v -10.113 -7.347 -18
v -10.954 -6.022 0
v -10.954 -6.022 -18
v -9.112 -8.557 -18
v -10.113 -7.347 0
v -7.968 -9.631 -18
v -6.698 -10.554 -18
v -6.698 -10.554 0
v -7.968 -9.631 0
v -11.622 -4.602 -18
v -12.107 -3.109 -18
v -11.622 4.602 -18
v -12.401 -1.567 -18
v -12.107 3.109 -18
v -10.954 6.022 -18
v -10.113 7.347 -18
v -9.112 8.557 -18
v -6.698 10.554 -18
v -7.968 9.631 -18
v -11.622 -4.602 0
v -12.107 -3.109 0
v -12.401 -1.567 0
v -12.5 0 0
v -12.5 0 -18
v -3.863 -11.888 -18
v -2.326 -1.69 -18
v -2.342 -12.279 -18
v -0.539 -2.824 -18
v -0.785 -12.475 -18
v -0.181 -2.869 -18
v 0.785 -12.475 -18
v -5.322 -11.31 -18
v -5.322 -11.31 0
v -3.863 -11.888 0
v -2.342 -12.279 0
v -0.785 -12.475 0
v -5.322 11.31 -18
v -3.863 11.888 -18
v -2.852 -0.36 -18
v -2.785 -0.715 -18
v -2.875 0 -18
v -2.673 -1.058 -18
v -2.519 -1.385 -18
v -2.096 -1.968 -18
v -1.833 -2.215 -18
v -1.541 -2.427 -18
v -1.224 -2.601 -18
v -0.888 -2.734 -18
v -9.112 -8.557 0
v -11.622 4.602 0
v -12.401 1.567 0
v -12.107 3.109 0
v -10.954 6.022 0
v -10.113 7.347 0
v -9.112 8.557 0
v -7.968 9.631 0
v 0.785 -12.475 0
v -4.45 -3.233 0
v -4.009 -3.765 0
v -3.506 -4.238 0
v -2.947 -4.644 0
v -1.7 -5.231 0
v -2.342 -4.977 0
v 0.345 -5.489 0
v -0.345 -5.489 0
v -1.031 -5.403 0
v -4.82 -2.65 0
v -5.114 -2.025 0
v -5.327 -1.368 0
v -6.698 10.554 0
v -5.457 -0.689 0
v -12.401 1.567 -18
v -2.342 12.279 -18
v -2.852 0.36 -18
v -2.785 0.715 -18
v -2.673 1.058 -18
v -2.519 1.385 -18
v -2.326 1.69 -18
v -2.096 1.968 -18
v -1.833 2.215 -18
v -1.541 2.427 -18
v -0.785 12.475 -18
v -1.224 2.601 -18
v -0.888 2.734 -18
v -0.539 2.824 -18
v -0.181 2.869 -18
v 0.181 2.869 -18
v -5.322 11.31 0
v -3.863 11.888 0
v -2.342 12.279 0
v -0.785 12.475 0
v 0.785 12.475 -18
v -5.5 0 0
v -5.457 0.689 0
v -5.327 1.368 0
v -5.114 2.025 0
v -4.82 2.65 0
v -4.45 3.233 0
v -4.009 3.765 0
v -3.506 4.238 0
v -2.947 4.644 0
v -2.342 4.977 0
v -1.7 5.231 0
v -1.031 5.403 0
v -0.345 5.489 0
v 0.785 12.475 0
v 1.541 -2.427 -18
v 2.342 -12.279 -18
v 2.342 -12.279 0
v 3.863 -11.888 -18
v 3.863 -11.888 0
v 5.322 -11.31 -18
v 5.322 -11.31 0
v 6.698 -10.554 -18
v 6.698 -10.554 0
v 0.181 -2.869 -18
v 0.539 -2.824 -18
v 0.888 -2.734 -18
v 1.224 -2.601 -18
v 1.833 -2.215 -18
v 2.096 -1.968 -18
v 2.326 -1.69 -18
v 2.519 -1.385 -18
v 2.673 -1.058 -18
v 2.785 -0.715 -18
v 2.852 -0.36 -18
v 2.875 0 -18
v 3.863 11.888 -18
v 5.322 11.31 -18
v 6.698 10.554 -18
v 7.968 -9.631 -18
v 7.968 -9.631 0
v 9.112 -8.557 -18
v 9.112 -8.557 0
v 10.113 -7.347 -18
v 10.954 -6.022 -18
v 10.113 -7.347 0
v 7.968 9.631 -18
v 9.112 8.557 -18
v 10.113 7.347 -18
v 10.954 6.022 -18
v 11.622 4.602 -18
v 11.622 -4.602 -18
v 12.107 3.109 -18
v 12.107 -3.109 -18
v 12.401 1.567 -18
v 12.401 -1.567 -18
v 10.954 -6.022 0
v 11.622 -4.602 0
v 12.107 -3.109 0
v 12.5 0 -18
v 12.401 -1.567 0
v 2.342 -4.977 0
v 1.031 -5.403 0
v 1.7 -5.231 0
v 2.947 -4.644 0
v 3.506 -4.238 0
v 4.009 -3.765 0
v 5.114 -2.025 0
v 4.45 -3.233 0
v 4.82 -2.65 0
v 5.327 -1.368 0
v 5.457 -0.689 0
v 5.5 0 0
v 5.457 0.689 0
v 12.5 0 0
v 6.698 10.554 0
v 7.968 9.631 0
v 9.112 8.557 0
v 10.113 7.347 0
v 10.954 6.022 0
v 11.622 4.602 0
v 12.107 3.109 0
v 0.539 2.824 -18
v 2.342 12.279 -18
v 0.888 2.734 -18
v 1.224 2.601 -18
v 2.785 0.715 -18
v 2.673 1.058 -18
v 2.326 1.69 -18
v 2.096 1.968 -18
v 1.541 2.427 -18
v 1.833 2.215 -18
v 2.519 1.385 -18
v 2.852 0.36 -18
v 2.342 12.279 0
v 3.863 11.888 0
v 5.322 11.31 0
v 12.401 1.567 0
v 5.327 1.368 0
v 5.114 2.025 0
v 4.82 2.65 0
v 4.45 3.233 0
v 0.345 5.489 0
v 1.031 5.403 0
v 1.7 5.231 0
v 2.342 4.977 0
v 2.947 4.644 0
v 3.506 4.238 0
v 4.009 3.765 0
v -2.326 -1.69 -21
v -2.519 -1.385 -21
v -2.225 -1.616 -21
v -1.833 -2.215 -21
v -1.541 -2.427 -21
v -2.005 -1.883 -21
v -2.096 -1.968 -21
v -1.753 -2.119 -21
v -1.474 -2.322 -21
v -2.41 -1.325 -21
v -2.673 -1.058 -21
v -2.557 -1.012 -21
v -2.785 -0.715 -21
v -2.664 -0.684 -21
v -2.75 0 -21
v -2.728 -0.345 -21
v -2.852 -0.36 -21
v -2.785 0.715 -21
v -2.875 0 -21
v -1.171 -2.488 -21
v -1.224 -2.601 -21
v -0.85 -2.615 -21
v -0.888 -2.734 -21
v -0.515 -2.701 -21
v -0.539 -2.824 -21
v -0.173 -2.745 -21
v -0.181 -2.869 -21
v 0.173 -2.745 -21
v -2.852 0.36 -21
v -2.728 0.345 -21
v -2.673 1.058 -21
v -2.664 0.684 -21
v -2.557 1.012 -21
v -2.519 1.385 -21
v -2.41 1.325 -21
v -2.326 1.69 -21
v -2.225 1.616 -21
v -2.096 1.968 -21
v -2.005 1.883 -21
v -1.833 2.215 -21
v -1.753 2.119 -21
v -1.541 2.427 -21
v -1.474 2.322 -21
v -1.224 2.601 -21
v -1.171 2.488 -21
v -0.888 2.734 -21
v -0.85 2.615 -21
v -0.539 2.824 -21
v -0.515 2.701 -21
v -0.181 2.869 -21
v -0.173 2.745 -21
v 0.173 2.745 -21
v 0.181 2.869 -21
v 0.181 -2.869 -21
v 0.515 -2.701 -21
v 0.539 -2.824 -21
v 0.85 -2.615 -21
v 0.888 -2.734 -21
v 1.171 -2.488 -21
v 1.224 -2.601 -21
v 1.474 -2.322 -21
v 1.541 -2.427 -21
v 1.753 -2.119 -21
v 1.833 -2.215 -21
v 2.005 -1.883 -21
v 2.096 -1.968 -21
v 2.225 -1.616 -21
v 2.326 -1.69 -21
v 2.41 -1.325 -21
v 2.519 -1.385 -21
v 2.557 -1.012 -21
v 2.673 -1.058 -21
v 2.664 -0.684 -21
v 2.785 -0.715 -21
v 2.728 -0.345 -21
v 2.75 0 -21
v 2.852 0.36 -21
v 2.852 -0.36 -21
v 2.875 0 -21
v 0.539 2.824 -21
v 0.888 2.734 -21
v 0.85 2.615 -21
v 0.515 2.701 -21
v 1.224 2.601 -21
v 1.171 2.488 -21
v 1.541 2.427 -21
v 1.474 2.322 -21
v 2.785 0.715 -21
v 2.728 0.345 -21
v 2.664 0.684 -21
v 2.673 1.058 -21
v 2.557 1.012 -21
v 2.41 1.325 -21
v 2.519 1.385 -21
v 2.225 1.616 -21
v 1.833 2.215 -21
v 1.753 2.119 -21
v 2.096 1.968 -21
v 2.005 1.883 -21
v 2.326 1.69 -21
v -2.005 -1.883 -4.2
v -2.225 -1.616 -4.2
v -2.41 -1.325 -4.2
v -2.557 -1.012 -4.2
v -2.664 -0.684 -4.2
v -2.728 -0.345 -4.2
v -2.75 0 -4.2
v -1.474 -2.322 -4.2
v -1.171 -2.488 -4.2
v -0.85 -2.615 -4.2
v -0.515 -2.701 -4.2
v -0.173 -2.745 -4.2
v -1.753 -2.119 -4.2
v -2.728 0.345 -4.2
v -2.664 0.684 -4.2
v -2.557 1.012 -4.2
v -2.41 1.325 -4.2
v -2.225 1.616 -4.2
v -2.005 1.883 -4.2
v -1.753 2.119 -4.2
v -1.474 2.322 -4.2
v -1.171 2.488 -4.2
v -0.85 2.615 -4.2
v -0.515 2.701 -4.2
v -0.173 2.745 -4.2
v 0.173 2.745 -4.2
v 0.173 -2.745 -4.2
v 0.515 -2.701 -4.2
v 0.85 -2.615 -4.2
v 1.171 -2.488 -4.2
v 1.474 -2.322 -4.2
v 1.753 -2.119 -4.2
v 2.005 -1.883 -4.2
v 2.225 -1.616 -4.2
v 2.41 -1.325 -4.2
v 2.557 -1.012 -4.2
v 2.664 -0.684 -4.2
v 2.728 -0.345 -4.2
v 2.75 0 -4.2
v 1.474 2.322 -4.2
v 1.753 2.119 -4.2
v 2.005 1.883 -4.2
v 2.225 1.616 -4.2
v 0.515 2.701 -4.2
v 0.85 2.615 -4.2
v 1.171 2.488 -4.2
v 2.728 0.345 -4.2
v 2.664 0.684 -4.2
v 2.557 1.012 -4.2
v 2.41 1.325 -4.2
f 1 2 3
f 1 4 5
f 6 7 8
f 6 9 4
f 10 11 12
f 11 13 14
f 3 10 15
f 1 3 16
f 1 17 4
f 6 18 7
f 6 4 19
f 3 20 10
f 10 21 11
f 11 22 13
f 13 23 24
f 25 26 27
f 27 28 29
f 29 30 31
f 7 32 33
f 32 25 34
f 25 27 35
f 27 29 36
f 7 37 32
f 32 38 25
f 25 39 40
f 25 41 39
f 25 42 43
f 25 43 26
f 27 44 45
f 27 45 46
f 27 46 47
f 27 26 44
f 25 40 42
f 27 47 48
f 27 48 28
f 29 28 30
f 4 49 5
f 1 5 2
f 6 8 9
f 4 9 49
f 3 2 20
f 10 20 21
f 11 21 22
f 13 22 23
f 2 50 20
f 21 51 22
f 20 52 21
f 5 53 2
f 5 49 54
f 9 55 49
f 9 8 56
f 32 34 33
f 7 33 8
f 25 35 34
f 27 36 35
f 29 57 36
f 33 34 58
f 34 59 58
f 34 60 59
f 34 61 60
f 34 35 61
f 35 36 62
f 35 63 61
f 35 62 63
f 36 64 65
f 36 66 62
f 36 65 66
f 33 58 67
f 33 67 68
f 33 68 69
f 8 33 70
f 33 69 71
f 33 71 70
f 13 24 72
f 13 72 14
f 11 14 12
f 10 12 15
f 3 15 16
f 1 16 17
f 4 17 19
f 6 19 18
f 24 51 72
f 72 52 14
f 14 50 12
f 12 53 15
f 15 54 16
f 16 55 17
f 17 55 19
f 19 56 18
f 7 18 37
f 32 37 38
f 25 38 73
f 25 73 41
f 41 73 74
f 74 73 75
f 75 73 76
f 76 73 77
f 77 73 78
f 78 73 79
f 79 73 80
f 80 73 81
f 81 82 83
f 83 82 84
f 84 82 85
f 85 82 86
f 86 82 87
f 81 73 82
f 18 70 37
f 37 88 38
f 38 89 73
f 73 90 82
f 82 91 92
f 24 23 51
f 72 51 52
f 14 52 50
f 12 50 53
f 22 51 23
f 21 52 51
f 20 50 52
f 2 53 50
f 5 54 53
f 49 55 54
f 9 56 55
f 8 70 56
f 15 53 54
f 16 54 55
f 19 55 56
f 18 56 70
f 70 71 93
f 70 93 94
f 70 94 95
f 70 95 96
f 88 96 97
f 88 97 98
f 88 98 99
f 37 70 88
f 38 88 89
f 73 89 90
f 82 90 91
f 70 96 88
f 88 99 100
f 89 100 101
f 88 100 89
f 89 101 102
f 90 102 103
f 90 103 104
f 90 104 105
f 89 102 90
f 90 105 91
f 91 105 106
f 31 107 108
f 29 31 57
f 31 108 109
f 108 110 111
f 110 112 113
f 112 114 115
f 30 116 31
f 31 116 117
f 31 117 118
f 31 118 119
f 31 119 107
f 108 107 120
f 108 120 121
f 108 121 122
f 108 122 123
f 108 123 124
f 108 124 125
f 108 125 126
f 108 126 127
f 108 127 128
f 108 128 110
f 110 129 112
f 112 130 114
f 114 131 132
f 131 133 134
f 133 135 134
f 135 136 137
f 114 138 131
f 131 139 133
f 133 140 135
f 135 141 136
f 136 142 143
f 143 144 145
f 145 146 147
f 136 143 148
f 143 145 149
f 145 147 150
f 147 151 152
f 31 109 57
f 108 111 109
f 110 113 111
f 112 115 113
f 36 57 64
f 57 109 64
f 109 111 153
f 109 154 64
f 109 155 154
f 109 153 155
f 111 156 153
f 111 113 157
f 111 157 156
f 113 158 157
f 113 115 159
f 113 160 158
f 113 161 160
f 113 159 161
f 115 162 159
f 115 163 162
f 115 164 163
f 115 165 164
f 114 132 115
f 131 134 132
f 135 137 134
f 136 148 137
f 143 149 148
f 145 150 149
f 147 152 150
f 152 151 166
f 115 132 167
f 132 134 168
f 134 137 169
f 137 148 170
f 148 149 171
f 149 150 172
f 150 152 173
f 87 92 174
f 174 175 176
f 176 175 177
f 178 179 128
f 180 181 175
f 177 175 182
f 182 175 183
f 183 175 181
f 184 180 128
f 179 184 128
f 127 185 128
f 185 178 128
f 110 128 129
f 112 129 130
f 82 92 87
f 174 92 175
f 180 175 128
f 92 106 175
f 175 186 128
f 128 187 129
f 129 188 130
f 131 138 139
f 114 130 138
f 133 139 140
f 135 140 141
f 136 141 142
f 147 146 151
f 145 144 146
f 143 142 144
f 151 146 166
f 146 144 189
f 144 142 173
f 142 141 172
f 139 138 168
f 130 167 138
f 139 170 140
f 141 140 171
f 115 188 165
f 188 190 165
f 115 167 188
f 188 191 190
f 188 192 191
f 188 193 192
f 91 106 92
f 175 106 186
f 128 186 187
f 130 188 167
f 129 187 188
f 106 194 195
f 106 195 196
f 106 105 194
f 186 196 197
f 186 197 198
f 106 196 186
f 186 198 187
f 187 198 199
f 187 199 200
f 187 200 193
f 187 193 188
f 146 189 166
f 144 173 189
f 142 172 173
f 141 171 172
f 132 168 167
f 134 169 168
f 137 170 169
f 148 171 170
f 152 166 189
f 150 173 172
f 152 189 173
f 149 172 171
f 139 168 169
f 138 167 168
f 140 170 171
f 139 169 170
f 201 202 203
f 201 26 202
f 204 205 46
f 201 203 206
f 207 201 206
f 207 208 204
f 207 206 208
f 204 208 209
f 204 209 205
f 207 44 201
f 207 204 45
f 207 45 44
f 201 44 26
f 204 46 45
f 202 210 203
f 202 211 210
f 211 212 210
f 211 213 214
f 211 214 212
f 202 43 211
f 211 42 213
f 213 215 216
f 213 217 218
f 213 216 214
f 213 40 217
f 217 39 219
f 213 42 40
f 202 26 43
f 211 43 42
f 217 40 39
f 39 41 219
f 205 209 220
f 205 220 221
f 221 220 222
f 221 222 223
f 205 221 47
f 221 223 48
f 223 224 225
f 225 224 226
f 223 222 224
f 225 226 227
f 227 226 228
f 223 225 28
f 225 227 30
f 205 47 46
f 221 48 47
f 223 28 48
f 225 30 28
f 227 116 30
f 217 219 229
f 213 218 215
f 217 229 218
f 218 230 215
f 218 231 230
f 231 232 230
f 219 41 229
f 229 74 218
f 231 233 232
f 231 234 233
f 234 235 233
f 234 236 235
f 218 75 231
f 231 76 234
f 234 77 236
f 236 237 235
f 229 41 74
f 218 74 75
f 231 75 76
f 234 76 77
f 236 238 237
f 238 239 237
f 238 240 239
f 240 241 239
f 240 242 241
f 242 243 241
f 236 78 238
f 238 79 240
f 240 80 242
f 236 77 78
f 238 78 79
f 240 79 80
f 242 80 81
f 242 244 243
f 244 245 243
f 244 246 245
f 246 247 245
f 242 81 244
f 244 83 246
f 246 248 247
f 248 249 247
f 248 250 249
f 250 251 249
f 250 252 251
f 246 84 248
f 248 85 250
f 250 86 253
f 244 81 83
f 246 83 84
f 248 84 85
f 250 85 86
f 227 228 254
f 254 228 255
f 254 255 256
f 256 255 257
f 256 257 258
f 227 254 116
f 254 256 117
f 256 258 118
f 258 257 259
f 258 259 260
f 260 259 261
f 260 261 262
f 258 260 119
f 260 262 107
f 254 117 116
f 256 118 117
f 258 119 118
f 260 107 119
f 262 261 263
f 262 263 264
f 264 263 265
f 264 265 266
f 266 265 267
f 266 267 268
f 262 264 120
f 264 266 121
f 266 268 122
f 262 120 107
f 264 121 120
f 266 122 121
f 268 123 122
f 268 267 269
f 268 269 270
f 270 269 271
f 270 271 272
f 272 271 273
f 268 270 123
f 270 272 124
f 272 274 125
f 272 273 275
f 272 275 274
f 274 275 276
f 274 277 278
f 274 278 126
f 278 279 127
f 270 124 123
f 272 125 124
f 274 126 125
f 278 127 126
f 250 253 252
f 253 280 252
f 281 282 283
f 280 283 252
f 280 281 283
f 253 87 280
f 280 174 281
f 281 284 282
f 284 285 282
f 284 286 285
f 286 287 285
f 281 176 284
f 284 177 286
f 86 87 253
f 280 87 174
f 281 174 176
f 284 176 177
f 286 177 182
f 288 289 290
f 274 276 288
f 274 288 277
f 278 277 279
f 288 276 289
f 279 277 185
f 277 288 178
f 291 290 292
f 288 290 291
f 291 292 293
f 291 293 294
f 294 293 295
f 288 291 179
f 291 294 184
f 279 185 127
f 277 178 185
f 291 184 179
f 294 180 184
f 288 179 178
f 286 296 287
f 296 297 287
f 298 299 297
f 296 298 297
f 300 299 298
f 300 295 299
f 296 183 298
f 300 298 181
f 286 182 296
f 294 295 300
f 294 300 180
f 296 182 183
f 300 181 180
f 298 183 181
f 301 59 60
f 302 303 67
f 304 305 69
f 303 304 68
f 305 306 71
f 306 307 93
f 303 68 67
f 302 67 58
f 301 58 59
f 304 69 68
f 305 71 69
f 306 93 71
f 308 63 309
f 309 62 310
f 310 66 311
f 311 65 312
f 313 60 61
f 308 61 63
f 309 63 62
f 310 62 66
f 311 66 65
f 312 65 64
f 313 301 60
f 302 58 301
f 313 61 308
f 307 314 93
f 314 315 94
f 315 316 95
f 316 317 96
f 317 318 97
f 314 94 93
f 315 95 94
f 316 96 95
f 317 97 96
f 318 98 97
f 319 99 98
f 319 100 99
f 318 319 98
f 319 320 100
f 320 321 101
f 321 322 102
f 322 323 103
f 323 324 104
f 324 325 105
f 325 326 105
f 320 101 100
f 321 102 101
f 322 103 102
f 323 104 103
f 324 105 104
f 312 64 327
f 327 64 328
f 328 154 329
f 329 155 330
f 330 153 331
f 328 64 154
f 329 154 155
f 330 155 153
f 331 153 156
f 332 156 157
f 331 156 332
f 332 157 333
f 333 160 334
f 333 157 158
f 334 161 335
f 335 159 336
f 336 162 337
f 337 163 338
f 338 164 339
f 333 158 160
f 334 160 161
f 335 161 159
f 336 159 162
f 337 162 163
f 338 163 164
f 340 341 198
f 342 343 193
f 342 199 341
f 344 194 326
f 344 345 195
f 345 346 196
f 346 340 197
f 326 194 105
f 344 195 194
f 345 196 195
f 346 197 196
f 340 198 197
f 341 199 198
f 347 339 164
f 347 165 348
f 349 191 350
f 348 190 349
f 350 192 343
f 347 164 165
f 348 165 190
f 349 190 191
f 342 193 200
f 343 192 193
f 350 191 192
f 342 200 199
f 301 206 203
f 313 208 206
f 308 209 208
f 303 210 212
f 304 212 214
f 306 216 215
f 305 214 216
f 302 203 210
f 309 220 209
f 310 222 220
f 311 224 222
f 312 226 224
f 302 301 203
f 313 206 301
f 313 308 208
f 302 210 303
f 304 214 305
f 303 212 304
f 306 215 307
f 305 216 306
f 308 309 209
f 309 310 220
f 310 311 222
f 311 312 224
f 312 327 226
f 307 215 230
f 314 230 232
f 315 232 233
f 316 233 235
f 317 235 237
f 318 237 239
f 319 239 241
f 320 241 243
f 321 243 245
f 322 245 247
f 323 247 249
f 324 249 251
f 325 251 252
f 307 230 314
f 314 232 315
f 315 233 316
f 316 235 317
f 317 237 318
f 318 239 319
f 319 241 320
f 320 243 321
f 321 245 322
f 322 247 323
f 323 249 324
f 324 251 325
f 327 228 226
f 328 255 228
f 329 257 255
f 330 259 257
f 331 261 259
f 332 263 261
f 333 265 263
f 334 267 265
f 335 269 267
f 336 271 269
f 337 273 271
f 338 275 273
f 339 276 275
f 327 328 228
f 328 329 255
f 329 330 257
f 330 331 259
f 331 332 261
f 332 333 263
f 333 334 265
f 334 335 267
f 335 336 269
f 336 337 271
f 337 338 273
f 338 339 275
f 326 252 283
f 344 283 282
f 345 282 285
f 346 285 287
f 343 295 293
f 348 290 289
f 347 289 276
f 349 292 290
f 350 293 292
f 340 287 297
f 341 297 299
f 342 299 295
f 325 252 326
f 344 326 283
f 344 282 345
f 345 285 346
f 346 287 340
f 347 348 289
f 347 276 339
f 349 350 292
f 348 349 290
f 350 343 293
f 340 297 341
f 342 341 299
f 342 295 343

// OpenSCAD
$fn = 50;


difference() {
	union() {
		translate(v = [0, 0, -18.0000000000]) {
			cylinder(h = 18, r = 12.5000000000);
		}
		#translate(v = [0, 0, -21.0000000000]) {
			cylinder(h = 21, r = 2.8750000000);
		}
	}
	union() {
		translate(v = [0, 0, 0]) {
			rotate(a = [0, 0, 0]) {
				difference() {
					union() {
						translate(v = [0, 0, -21.0000000000]) {
							cylinder(h = 21, r = 2.2500000000);
						}
						translate(v = [0, 0, -4.2000000000]) {
							cylinder(h = 4.2000000000, r1 = 2.7500000000, r2 = 5.5000000000);
						}
						translate(v = [0, 0, -21.0000000000]) {
							cylinder(h = 21, r = 2.7500000000);
						}
						translate(v = [0, 0, -21.0000000000]) {
							cylinder(h = 21, r = 2.2500000000);
						}
					}
					union();
				}
			}
		}
	}
}
